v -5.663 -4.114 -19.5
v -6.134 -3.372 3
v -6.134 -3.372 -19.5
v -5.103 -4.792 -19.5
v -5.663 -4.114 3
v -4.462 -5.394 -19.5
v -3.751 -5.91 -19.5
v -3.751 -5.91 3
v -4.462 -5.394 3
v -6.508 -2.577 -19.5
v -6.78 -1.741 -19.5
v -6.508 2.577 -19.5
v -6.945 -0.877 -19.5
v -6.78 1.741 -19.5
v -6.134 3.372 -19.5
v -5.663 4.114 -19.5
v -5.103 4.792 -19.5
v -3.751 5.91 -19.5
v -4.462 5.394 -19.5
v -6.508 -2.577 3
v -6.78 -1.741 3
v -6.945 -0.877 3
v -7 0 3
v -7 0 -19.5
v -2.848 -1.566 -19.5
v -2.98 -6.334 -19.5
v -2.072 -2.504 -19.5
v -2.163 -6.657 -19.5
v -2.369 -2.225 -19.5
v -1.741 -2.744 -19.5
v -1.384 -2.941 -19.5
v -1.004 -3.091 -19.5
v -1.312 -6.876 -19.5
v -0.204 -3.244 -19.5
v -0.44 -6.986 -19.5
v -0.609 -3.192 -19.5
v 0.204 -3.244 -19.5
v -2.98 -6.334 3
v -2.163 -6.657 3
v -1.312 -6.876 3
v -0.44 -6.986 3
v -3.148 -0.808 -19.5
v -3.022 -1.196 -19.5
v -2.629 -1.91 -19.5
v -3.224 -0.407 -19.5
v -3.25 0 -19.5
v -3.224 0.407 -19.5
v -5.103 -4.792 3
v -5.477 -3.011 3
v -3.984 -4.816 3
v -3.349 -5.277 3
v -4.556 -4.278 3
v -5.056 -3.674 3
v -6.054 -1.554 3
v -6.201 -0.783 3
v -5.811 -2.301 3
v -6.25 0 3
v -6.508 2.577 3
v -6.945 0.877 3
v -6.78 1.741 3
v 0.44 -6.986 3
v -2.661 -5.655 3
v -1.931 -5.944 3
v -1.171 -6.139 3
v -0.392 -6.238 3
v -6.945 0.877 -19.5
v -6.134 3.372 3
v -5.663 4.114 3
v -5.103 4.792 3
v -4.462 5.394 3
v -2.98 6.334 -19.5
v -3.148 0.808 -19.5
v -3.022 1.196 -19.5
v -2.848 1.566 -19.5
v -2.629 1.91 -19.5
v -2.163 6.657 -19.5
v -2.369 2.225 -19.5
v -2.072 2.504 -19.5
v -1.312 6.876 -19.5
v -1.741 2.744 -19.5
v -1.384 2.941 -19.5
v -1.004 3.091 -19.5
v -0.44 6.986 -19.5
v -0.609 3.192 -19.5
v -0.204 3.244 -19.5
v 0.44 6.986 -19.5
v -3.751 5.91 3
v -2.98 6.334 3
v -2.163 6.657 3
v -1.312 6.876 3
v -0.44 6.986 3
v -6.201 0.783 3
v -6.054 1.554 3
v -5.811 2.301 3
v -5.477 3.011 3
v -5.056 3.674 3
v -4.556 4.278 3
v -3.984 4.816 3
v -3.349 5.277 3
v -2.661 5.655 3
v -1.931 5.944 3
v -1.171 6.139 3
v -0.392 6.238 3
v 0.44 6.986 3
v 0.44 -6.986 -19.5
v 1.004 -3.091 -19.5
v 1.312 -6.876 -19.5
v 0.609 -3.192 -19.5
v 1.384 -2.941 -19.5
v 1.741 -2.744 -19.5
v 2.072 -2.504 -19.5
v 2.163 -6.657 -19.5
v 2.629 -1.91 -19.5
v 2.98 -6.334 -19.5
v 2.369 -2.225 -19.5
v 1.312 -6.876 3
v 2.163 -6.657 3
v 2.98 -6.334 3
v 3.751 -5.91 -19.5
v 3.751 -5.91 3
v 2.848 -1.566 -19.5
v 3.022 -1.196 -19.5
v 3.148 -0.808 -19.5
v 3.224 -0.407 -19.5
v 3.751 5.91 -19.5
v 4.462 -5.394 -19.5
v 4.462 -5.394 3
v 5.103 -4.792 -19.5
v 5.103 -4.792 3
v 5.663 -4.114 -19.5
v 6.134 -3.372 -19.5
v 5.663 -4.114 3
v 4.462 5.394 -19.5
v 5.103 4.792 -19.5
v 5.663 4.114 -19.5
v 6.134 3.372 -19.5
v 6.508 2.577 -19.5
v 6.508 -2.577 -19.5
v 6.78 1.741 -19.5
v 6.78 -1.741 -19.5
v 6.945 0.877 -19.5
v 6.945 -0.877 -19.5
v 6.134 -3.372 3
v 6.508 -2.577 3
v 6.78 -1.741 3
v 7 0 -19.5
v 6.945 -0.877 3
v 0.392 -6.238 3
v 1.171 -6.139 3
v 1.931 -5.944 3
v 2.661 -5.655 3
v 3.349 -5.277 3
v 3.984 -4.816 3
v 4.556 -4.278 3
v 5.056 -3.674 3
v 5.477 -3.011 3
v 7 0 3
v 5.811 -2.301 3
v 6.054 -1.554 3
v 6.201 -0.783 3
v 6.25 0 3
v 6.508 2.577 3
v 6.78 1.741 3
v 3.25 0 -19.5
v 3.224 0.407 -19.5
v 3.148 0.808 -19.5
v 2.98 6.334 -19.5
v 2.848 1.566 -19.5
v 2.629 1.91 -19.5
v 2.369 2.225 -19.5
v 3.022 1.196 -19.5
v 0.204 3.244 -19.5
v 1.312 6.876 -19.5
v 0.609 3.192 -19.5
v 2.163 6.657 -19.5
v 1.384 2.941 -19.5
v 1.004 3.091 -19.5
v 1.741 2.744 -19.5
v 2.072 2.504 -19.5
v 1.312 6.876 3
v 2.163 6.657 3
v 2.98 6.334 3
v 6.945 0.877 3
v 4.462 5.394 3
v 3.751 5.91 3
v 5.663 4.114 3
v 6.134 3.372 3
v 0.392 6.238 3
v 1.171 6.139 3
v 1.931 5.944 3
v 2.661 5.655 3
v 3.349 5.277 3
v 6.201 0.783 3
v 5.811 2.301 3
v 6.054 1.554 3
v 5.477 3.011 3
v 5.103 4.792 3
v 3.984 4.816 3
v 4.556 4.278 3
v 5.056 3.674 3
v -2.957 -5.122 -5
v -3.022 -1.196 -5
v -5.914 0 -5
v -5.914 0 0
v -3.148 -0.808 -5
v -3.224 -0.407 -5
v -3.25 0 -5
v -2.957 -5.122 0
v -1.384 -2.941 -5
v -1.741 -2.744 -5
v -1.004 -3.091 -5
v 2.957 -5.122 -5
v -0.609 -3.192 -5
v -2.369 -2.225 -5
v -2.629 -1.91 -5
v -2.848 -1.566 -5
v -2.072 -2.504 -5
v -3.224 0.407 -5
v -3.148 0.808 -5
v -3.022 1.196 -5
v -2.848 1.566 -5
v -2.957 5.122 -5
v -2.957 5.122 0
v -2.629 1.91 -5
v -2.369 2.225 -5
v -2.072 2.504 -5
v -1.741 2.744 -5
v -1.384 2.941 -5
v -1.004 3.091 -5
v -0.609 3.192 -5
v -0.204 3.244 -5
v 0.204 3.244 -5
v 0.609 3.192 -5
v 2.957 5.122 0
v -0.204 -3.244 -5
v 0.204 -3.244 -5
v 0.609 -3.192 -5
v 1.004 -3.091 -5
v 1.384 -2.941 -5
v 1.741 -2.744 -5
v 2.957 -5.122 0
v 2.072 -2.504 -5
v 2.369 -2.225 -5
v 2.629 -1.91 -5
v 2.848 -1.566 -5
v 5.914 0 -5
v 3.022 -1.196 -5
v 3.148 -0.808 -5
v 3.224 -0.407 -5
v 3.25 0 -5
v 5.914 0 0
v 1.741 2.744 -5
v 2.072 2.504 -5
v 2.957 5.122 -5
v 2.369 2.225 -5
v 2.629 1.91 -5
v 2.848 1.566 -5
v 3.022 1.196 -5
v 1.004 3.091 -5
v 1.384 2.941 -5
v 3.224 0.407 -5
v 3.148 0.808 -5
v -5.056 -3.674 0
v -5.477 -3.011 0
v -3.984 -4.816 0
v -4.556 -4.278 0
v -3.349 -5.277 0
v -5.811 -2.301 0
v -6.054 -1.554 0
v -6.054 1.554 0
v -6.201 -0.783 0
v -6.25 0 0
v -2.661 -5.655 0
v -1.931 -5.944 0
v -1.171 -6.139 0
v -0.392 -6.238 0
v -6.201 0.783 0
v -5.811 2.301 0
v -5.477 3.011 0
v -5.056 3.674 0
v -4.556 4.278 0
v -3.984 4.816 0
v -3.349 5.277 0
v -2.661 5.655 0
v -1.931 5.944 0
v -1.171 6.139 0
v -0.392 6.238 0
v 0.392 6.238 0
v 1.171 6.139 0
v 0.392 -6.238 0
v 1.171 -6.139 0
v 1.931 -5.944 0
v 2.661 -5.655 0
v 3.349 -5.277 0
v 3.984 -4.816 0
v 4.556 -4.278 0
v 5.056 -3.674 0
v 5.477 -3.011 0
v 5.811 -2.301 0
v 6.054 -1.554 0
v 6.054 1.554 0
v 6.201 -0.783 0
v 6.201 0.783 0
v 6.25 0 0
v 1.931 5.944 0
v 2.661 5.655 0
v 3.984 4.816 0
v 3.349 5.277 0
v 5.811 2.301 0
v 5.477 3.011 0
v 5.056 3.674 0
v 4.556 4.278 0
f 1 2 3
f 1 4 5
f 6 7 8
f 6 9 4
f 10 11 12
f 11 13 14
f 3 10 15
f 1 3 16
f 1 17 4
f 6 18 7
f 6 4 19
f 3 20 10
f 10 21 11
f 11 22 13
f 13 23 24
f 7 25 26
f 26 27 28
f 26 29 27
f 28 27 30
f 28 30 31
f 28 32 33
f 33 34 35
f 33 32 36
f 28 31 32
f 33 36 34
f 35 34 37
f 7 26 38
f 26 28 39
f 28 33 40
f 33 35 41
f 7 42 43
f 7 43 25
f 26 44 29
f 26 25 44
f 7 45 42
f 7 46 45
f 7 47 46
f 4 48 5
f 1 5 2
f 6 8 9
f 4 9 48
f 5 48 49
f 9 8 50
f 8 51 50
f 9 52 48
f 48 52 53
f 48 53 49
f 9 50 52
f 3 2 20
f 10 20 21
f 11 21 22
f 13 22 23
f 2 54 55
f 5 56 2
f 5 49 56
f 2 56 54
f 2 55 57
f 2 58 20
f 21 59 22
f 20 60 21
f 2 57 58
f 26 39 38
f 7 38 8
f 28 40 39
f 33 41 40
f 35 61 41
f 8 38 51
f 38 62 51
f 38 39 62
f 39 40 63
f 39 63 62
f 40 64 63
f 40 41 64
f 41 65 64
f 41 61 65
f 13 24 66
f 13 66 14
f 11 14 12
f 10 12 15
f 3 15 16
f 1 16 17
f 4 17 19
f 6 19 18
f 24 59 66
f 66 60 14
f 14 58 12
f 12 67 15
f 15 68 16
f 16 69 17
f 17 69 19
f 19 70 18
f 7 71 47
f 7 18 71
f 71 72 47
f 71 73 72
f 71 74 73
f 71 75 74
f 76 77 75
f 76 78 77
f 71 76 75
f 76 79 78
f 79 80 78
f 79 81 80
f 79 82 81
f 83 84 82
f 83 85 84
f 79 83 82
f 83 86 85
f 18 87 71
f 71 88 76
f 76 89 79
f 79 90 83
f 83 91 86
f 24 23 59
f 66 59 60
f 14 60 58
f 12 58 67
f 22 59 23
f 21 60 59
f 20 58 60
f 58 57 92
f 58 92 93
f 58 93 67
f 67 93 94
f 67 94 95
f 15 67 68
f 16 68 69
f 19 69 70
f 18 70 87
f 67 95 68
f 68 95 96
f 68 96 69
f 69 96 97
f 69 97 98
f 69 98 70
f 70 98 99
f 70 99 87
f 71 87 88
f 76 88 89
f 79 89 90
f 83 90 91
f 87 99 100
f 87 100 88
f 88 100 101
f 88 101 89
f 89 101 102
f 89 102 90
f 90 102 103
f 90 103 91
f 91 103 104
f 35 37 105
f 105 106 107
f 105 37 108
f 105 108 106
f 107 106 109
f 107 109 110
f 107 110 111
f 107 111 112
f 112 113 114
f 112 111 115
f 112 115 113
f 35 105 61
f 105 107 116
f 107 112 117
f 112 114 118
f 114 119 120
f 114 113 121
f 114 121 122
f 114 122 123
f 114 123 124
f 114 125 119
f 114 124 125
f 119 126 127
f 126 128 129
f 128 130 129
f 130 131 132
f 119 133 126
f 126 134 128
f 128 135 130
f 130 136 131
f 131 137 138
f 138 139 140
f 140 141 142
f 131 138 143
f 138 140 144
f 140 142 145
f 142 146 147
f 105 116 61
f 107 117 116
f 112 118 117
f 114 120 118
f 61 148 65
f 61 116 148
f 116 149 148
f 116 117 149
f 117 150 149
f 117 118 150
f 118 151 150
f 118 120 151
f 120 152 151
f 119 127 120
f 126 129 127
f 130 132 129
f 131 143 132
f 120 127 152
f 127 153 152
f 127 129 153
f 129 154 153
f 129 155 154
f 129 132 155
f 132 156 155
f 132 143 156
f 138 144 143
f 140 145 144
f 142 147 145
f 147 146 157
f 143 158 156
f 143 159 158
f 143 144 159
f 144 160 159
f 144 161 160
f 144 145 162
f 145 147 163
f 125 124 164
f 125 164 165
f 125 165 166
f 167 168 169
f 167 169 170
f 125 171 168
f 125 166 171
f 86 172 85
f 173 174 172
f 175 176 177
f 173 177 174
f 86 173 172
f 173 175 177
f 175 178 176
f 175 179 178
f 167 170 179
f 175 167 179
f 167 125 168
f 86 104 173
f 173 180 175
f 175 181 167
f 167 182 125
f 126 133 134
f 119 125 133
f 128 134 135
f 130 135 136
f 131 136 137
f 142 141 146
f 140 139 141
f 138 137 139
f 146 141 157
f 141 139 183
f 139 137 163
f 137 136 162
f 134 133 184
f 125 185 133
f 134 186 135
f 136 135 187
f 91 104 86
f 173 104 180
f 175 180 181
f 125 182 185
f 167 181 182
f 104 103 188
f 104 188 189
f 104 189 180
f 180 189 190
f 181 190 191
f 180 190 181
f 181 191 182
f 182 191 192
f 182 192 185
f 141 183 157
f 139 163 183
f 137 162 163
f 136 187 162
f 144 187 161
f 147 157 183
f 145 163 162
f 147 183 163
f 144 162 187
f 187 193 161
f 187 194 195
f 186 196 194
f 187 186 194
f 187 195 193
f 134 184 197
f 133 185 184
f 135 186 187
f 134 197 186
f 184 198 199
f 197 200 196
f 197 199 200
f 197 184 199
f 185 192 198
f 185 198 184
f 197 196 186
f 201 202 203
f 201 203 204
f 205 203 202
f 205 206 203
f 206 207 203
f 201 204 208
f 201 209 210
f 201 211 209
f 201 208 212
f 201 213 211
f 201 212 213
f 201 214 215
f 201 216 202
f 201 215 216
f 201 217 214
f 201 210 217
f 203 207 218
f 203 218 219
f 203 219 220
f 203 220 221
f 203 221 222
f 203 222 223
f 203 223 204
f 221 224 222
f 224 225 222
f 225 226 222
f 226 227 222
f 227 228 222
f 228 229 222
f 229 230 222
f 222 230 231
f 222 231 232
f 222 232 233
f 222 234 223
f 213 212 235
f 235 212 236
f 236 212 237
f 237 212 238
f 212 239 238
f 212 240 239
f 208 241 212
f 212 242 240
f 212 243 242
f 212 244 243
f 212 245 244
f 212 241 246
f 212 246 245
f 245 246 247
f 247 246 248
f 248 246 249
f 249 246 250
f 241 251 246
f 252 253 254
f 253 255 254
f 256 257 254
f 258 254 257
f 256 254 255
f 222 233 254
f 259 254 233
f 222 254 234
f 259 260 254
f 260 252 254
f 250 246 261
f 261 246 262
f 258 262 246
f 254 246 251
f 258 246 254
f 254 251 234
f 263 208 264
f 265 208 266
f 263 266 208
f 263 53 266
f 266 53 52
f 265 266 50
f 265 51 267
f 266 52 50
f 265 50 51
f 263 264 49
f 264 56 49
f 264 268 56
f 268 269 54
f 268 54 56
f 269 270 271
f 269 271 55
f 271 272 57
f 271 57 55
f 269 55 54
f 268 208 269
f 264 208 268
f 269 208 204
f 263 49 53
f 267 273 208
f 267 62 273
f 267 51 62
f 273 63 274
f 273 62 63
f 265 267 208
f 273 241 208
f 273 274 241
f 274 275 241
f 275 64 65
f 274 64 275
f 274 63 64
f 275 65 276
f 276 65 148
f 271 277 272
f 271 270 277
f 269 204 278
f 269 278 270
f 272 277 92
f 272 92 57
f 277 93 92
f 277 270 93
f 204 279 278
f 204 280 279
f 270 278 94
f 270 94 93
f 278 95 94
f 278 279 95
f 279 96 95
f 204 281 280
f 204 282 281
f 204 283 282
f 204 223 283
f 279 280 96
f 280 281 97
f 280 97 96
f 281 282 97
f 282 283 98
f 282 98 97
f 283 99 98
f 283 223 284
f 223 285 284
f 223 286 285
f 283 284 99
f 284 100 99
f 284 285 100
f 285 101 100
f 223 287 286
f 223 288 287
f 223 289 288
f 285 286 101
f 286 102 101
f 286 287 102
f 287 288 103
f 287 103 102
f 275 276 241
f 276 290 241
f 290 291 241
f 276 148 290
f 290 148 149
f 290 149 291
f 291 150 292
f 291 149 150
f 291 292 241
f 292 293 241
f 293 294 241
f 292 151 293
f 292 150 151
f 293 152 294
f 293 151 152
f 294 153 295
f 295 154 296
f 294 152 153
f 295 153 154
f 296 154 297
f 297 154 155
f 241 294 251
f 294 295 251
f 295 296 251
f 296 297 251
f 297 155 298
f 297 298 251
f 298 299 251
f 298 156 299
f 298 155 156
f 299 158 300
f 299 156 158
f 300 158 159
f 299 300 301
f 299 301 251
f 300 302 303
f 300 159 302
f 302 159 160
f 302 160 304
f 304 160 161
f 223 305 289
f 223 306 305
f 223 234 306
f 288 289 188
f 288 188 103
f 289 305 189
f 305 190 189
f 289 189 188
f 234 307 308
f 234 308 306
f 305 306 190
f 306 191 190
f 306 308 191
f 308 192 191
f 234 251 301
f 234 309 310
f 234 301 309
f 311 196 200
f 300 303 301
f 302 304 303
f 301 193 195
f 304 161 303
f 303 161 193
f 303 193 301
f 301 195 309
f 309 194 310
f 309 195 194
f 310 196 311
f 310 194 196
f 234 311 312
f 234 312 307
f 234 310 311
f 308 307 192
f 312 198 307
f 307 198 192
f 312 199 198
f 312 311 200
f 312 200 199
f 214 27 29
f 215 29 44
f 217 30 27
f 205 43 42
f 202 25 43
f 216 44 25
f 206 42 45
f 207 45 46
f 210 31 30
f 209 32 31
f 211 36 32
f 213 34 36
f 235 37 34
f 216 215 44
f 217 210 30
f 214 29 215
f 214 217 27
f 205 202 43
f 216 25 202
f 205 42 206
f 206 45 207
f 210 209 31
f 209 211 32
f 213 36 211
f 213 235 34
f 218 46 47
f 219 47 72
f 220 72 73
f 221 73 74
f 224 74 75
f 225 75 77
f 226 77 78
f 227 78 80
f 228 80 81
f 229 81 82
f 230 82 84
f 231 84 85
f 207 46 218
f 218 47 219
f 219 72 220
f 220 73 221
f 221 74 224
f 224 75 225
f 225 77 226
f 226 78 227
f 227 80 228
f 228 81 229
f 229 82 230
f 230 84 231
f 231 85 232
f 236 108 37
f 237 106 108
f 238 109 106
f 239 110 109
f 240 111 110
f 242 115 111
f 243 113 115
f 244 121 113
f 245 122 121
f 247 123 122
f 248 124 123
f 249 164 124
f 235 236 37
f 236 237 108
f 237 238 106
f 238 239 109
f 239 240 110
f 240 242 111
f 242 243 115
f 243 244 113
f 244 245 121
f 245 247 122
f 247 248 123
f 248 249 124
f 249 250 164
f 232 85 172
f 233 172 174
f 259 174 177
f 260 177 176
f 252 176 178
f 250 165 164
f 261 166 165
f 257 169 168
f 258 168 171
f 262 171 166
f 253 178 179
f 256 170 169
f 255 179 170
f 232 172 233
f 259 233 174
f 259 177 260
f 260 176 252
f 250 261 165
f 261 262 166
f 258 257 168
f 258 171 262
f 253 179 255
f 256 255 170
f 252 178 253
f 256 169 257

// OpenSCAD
$fn = 50;

difference() {
	union() {
		translate(v = [0, 0, -19.5]) {
			cylinder(h = 22.5, r = 7.0);
		}
		#translate(v = [0, 0, -21.0]) {
			cylinder(h = 21, r = 2.875);
		}
	}
	union() {
		translate(v = [0, 0, 0]) {
			rotate(a = [0, 0, 0]) {
				difference() {
					union() {
						translate(v = [0, 0, -5]) {
							linear_extrude(height = 5) {
								polygon(points = [[5.914249999999999, 0.0], [2.957125, 5.1218907443321156], [-2.9571249999999982, 5.1218907443321156], [-5.914249999999999, 7.242867331857232e-16], [-2.9571250000000022, -5.121890744332115], [2.9571249999999956, -5.121890744332118]]);
							}
						}
					}
					union();
				}
			}
		}
		#cylinder(h = 3, r = 6.25);
		#translate(v = [0, 0, -100.0]) {
			cylinder(h = 200, r = 3.25);
		}
	}
}
